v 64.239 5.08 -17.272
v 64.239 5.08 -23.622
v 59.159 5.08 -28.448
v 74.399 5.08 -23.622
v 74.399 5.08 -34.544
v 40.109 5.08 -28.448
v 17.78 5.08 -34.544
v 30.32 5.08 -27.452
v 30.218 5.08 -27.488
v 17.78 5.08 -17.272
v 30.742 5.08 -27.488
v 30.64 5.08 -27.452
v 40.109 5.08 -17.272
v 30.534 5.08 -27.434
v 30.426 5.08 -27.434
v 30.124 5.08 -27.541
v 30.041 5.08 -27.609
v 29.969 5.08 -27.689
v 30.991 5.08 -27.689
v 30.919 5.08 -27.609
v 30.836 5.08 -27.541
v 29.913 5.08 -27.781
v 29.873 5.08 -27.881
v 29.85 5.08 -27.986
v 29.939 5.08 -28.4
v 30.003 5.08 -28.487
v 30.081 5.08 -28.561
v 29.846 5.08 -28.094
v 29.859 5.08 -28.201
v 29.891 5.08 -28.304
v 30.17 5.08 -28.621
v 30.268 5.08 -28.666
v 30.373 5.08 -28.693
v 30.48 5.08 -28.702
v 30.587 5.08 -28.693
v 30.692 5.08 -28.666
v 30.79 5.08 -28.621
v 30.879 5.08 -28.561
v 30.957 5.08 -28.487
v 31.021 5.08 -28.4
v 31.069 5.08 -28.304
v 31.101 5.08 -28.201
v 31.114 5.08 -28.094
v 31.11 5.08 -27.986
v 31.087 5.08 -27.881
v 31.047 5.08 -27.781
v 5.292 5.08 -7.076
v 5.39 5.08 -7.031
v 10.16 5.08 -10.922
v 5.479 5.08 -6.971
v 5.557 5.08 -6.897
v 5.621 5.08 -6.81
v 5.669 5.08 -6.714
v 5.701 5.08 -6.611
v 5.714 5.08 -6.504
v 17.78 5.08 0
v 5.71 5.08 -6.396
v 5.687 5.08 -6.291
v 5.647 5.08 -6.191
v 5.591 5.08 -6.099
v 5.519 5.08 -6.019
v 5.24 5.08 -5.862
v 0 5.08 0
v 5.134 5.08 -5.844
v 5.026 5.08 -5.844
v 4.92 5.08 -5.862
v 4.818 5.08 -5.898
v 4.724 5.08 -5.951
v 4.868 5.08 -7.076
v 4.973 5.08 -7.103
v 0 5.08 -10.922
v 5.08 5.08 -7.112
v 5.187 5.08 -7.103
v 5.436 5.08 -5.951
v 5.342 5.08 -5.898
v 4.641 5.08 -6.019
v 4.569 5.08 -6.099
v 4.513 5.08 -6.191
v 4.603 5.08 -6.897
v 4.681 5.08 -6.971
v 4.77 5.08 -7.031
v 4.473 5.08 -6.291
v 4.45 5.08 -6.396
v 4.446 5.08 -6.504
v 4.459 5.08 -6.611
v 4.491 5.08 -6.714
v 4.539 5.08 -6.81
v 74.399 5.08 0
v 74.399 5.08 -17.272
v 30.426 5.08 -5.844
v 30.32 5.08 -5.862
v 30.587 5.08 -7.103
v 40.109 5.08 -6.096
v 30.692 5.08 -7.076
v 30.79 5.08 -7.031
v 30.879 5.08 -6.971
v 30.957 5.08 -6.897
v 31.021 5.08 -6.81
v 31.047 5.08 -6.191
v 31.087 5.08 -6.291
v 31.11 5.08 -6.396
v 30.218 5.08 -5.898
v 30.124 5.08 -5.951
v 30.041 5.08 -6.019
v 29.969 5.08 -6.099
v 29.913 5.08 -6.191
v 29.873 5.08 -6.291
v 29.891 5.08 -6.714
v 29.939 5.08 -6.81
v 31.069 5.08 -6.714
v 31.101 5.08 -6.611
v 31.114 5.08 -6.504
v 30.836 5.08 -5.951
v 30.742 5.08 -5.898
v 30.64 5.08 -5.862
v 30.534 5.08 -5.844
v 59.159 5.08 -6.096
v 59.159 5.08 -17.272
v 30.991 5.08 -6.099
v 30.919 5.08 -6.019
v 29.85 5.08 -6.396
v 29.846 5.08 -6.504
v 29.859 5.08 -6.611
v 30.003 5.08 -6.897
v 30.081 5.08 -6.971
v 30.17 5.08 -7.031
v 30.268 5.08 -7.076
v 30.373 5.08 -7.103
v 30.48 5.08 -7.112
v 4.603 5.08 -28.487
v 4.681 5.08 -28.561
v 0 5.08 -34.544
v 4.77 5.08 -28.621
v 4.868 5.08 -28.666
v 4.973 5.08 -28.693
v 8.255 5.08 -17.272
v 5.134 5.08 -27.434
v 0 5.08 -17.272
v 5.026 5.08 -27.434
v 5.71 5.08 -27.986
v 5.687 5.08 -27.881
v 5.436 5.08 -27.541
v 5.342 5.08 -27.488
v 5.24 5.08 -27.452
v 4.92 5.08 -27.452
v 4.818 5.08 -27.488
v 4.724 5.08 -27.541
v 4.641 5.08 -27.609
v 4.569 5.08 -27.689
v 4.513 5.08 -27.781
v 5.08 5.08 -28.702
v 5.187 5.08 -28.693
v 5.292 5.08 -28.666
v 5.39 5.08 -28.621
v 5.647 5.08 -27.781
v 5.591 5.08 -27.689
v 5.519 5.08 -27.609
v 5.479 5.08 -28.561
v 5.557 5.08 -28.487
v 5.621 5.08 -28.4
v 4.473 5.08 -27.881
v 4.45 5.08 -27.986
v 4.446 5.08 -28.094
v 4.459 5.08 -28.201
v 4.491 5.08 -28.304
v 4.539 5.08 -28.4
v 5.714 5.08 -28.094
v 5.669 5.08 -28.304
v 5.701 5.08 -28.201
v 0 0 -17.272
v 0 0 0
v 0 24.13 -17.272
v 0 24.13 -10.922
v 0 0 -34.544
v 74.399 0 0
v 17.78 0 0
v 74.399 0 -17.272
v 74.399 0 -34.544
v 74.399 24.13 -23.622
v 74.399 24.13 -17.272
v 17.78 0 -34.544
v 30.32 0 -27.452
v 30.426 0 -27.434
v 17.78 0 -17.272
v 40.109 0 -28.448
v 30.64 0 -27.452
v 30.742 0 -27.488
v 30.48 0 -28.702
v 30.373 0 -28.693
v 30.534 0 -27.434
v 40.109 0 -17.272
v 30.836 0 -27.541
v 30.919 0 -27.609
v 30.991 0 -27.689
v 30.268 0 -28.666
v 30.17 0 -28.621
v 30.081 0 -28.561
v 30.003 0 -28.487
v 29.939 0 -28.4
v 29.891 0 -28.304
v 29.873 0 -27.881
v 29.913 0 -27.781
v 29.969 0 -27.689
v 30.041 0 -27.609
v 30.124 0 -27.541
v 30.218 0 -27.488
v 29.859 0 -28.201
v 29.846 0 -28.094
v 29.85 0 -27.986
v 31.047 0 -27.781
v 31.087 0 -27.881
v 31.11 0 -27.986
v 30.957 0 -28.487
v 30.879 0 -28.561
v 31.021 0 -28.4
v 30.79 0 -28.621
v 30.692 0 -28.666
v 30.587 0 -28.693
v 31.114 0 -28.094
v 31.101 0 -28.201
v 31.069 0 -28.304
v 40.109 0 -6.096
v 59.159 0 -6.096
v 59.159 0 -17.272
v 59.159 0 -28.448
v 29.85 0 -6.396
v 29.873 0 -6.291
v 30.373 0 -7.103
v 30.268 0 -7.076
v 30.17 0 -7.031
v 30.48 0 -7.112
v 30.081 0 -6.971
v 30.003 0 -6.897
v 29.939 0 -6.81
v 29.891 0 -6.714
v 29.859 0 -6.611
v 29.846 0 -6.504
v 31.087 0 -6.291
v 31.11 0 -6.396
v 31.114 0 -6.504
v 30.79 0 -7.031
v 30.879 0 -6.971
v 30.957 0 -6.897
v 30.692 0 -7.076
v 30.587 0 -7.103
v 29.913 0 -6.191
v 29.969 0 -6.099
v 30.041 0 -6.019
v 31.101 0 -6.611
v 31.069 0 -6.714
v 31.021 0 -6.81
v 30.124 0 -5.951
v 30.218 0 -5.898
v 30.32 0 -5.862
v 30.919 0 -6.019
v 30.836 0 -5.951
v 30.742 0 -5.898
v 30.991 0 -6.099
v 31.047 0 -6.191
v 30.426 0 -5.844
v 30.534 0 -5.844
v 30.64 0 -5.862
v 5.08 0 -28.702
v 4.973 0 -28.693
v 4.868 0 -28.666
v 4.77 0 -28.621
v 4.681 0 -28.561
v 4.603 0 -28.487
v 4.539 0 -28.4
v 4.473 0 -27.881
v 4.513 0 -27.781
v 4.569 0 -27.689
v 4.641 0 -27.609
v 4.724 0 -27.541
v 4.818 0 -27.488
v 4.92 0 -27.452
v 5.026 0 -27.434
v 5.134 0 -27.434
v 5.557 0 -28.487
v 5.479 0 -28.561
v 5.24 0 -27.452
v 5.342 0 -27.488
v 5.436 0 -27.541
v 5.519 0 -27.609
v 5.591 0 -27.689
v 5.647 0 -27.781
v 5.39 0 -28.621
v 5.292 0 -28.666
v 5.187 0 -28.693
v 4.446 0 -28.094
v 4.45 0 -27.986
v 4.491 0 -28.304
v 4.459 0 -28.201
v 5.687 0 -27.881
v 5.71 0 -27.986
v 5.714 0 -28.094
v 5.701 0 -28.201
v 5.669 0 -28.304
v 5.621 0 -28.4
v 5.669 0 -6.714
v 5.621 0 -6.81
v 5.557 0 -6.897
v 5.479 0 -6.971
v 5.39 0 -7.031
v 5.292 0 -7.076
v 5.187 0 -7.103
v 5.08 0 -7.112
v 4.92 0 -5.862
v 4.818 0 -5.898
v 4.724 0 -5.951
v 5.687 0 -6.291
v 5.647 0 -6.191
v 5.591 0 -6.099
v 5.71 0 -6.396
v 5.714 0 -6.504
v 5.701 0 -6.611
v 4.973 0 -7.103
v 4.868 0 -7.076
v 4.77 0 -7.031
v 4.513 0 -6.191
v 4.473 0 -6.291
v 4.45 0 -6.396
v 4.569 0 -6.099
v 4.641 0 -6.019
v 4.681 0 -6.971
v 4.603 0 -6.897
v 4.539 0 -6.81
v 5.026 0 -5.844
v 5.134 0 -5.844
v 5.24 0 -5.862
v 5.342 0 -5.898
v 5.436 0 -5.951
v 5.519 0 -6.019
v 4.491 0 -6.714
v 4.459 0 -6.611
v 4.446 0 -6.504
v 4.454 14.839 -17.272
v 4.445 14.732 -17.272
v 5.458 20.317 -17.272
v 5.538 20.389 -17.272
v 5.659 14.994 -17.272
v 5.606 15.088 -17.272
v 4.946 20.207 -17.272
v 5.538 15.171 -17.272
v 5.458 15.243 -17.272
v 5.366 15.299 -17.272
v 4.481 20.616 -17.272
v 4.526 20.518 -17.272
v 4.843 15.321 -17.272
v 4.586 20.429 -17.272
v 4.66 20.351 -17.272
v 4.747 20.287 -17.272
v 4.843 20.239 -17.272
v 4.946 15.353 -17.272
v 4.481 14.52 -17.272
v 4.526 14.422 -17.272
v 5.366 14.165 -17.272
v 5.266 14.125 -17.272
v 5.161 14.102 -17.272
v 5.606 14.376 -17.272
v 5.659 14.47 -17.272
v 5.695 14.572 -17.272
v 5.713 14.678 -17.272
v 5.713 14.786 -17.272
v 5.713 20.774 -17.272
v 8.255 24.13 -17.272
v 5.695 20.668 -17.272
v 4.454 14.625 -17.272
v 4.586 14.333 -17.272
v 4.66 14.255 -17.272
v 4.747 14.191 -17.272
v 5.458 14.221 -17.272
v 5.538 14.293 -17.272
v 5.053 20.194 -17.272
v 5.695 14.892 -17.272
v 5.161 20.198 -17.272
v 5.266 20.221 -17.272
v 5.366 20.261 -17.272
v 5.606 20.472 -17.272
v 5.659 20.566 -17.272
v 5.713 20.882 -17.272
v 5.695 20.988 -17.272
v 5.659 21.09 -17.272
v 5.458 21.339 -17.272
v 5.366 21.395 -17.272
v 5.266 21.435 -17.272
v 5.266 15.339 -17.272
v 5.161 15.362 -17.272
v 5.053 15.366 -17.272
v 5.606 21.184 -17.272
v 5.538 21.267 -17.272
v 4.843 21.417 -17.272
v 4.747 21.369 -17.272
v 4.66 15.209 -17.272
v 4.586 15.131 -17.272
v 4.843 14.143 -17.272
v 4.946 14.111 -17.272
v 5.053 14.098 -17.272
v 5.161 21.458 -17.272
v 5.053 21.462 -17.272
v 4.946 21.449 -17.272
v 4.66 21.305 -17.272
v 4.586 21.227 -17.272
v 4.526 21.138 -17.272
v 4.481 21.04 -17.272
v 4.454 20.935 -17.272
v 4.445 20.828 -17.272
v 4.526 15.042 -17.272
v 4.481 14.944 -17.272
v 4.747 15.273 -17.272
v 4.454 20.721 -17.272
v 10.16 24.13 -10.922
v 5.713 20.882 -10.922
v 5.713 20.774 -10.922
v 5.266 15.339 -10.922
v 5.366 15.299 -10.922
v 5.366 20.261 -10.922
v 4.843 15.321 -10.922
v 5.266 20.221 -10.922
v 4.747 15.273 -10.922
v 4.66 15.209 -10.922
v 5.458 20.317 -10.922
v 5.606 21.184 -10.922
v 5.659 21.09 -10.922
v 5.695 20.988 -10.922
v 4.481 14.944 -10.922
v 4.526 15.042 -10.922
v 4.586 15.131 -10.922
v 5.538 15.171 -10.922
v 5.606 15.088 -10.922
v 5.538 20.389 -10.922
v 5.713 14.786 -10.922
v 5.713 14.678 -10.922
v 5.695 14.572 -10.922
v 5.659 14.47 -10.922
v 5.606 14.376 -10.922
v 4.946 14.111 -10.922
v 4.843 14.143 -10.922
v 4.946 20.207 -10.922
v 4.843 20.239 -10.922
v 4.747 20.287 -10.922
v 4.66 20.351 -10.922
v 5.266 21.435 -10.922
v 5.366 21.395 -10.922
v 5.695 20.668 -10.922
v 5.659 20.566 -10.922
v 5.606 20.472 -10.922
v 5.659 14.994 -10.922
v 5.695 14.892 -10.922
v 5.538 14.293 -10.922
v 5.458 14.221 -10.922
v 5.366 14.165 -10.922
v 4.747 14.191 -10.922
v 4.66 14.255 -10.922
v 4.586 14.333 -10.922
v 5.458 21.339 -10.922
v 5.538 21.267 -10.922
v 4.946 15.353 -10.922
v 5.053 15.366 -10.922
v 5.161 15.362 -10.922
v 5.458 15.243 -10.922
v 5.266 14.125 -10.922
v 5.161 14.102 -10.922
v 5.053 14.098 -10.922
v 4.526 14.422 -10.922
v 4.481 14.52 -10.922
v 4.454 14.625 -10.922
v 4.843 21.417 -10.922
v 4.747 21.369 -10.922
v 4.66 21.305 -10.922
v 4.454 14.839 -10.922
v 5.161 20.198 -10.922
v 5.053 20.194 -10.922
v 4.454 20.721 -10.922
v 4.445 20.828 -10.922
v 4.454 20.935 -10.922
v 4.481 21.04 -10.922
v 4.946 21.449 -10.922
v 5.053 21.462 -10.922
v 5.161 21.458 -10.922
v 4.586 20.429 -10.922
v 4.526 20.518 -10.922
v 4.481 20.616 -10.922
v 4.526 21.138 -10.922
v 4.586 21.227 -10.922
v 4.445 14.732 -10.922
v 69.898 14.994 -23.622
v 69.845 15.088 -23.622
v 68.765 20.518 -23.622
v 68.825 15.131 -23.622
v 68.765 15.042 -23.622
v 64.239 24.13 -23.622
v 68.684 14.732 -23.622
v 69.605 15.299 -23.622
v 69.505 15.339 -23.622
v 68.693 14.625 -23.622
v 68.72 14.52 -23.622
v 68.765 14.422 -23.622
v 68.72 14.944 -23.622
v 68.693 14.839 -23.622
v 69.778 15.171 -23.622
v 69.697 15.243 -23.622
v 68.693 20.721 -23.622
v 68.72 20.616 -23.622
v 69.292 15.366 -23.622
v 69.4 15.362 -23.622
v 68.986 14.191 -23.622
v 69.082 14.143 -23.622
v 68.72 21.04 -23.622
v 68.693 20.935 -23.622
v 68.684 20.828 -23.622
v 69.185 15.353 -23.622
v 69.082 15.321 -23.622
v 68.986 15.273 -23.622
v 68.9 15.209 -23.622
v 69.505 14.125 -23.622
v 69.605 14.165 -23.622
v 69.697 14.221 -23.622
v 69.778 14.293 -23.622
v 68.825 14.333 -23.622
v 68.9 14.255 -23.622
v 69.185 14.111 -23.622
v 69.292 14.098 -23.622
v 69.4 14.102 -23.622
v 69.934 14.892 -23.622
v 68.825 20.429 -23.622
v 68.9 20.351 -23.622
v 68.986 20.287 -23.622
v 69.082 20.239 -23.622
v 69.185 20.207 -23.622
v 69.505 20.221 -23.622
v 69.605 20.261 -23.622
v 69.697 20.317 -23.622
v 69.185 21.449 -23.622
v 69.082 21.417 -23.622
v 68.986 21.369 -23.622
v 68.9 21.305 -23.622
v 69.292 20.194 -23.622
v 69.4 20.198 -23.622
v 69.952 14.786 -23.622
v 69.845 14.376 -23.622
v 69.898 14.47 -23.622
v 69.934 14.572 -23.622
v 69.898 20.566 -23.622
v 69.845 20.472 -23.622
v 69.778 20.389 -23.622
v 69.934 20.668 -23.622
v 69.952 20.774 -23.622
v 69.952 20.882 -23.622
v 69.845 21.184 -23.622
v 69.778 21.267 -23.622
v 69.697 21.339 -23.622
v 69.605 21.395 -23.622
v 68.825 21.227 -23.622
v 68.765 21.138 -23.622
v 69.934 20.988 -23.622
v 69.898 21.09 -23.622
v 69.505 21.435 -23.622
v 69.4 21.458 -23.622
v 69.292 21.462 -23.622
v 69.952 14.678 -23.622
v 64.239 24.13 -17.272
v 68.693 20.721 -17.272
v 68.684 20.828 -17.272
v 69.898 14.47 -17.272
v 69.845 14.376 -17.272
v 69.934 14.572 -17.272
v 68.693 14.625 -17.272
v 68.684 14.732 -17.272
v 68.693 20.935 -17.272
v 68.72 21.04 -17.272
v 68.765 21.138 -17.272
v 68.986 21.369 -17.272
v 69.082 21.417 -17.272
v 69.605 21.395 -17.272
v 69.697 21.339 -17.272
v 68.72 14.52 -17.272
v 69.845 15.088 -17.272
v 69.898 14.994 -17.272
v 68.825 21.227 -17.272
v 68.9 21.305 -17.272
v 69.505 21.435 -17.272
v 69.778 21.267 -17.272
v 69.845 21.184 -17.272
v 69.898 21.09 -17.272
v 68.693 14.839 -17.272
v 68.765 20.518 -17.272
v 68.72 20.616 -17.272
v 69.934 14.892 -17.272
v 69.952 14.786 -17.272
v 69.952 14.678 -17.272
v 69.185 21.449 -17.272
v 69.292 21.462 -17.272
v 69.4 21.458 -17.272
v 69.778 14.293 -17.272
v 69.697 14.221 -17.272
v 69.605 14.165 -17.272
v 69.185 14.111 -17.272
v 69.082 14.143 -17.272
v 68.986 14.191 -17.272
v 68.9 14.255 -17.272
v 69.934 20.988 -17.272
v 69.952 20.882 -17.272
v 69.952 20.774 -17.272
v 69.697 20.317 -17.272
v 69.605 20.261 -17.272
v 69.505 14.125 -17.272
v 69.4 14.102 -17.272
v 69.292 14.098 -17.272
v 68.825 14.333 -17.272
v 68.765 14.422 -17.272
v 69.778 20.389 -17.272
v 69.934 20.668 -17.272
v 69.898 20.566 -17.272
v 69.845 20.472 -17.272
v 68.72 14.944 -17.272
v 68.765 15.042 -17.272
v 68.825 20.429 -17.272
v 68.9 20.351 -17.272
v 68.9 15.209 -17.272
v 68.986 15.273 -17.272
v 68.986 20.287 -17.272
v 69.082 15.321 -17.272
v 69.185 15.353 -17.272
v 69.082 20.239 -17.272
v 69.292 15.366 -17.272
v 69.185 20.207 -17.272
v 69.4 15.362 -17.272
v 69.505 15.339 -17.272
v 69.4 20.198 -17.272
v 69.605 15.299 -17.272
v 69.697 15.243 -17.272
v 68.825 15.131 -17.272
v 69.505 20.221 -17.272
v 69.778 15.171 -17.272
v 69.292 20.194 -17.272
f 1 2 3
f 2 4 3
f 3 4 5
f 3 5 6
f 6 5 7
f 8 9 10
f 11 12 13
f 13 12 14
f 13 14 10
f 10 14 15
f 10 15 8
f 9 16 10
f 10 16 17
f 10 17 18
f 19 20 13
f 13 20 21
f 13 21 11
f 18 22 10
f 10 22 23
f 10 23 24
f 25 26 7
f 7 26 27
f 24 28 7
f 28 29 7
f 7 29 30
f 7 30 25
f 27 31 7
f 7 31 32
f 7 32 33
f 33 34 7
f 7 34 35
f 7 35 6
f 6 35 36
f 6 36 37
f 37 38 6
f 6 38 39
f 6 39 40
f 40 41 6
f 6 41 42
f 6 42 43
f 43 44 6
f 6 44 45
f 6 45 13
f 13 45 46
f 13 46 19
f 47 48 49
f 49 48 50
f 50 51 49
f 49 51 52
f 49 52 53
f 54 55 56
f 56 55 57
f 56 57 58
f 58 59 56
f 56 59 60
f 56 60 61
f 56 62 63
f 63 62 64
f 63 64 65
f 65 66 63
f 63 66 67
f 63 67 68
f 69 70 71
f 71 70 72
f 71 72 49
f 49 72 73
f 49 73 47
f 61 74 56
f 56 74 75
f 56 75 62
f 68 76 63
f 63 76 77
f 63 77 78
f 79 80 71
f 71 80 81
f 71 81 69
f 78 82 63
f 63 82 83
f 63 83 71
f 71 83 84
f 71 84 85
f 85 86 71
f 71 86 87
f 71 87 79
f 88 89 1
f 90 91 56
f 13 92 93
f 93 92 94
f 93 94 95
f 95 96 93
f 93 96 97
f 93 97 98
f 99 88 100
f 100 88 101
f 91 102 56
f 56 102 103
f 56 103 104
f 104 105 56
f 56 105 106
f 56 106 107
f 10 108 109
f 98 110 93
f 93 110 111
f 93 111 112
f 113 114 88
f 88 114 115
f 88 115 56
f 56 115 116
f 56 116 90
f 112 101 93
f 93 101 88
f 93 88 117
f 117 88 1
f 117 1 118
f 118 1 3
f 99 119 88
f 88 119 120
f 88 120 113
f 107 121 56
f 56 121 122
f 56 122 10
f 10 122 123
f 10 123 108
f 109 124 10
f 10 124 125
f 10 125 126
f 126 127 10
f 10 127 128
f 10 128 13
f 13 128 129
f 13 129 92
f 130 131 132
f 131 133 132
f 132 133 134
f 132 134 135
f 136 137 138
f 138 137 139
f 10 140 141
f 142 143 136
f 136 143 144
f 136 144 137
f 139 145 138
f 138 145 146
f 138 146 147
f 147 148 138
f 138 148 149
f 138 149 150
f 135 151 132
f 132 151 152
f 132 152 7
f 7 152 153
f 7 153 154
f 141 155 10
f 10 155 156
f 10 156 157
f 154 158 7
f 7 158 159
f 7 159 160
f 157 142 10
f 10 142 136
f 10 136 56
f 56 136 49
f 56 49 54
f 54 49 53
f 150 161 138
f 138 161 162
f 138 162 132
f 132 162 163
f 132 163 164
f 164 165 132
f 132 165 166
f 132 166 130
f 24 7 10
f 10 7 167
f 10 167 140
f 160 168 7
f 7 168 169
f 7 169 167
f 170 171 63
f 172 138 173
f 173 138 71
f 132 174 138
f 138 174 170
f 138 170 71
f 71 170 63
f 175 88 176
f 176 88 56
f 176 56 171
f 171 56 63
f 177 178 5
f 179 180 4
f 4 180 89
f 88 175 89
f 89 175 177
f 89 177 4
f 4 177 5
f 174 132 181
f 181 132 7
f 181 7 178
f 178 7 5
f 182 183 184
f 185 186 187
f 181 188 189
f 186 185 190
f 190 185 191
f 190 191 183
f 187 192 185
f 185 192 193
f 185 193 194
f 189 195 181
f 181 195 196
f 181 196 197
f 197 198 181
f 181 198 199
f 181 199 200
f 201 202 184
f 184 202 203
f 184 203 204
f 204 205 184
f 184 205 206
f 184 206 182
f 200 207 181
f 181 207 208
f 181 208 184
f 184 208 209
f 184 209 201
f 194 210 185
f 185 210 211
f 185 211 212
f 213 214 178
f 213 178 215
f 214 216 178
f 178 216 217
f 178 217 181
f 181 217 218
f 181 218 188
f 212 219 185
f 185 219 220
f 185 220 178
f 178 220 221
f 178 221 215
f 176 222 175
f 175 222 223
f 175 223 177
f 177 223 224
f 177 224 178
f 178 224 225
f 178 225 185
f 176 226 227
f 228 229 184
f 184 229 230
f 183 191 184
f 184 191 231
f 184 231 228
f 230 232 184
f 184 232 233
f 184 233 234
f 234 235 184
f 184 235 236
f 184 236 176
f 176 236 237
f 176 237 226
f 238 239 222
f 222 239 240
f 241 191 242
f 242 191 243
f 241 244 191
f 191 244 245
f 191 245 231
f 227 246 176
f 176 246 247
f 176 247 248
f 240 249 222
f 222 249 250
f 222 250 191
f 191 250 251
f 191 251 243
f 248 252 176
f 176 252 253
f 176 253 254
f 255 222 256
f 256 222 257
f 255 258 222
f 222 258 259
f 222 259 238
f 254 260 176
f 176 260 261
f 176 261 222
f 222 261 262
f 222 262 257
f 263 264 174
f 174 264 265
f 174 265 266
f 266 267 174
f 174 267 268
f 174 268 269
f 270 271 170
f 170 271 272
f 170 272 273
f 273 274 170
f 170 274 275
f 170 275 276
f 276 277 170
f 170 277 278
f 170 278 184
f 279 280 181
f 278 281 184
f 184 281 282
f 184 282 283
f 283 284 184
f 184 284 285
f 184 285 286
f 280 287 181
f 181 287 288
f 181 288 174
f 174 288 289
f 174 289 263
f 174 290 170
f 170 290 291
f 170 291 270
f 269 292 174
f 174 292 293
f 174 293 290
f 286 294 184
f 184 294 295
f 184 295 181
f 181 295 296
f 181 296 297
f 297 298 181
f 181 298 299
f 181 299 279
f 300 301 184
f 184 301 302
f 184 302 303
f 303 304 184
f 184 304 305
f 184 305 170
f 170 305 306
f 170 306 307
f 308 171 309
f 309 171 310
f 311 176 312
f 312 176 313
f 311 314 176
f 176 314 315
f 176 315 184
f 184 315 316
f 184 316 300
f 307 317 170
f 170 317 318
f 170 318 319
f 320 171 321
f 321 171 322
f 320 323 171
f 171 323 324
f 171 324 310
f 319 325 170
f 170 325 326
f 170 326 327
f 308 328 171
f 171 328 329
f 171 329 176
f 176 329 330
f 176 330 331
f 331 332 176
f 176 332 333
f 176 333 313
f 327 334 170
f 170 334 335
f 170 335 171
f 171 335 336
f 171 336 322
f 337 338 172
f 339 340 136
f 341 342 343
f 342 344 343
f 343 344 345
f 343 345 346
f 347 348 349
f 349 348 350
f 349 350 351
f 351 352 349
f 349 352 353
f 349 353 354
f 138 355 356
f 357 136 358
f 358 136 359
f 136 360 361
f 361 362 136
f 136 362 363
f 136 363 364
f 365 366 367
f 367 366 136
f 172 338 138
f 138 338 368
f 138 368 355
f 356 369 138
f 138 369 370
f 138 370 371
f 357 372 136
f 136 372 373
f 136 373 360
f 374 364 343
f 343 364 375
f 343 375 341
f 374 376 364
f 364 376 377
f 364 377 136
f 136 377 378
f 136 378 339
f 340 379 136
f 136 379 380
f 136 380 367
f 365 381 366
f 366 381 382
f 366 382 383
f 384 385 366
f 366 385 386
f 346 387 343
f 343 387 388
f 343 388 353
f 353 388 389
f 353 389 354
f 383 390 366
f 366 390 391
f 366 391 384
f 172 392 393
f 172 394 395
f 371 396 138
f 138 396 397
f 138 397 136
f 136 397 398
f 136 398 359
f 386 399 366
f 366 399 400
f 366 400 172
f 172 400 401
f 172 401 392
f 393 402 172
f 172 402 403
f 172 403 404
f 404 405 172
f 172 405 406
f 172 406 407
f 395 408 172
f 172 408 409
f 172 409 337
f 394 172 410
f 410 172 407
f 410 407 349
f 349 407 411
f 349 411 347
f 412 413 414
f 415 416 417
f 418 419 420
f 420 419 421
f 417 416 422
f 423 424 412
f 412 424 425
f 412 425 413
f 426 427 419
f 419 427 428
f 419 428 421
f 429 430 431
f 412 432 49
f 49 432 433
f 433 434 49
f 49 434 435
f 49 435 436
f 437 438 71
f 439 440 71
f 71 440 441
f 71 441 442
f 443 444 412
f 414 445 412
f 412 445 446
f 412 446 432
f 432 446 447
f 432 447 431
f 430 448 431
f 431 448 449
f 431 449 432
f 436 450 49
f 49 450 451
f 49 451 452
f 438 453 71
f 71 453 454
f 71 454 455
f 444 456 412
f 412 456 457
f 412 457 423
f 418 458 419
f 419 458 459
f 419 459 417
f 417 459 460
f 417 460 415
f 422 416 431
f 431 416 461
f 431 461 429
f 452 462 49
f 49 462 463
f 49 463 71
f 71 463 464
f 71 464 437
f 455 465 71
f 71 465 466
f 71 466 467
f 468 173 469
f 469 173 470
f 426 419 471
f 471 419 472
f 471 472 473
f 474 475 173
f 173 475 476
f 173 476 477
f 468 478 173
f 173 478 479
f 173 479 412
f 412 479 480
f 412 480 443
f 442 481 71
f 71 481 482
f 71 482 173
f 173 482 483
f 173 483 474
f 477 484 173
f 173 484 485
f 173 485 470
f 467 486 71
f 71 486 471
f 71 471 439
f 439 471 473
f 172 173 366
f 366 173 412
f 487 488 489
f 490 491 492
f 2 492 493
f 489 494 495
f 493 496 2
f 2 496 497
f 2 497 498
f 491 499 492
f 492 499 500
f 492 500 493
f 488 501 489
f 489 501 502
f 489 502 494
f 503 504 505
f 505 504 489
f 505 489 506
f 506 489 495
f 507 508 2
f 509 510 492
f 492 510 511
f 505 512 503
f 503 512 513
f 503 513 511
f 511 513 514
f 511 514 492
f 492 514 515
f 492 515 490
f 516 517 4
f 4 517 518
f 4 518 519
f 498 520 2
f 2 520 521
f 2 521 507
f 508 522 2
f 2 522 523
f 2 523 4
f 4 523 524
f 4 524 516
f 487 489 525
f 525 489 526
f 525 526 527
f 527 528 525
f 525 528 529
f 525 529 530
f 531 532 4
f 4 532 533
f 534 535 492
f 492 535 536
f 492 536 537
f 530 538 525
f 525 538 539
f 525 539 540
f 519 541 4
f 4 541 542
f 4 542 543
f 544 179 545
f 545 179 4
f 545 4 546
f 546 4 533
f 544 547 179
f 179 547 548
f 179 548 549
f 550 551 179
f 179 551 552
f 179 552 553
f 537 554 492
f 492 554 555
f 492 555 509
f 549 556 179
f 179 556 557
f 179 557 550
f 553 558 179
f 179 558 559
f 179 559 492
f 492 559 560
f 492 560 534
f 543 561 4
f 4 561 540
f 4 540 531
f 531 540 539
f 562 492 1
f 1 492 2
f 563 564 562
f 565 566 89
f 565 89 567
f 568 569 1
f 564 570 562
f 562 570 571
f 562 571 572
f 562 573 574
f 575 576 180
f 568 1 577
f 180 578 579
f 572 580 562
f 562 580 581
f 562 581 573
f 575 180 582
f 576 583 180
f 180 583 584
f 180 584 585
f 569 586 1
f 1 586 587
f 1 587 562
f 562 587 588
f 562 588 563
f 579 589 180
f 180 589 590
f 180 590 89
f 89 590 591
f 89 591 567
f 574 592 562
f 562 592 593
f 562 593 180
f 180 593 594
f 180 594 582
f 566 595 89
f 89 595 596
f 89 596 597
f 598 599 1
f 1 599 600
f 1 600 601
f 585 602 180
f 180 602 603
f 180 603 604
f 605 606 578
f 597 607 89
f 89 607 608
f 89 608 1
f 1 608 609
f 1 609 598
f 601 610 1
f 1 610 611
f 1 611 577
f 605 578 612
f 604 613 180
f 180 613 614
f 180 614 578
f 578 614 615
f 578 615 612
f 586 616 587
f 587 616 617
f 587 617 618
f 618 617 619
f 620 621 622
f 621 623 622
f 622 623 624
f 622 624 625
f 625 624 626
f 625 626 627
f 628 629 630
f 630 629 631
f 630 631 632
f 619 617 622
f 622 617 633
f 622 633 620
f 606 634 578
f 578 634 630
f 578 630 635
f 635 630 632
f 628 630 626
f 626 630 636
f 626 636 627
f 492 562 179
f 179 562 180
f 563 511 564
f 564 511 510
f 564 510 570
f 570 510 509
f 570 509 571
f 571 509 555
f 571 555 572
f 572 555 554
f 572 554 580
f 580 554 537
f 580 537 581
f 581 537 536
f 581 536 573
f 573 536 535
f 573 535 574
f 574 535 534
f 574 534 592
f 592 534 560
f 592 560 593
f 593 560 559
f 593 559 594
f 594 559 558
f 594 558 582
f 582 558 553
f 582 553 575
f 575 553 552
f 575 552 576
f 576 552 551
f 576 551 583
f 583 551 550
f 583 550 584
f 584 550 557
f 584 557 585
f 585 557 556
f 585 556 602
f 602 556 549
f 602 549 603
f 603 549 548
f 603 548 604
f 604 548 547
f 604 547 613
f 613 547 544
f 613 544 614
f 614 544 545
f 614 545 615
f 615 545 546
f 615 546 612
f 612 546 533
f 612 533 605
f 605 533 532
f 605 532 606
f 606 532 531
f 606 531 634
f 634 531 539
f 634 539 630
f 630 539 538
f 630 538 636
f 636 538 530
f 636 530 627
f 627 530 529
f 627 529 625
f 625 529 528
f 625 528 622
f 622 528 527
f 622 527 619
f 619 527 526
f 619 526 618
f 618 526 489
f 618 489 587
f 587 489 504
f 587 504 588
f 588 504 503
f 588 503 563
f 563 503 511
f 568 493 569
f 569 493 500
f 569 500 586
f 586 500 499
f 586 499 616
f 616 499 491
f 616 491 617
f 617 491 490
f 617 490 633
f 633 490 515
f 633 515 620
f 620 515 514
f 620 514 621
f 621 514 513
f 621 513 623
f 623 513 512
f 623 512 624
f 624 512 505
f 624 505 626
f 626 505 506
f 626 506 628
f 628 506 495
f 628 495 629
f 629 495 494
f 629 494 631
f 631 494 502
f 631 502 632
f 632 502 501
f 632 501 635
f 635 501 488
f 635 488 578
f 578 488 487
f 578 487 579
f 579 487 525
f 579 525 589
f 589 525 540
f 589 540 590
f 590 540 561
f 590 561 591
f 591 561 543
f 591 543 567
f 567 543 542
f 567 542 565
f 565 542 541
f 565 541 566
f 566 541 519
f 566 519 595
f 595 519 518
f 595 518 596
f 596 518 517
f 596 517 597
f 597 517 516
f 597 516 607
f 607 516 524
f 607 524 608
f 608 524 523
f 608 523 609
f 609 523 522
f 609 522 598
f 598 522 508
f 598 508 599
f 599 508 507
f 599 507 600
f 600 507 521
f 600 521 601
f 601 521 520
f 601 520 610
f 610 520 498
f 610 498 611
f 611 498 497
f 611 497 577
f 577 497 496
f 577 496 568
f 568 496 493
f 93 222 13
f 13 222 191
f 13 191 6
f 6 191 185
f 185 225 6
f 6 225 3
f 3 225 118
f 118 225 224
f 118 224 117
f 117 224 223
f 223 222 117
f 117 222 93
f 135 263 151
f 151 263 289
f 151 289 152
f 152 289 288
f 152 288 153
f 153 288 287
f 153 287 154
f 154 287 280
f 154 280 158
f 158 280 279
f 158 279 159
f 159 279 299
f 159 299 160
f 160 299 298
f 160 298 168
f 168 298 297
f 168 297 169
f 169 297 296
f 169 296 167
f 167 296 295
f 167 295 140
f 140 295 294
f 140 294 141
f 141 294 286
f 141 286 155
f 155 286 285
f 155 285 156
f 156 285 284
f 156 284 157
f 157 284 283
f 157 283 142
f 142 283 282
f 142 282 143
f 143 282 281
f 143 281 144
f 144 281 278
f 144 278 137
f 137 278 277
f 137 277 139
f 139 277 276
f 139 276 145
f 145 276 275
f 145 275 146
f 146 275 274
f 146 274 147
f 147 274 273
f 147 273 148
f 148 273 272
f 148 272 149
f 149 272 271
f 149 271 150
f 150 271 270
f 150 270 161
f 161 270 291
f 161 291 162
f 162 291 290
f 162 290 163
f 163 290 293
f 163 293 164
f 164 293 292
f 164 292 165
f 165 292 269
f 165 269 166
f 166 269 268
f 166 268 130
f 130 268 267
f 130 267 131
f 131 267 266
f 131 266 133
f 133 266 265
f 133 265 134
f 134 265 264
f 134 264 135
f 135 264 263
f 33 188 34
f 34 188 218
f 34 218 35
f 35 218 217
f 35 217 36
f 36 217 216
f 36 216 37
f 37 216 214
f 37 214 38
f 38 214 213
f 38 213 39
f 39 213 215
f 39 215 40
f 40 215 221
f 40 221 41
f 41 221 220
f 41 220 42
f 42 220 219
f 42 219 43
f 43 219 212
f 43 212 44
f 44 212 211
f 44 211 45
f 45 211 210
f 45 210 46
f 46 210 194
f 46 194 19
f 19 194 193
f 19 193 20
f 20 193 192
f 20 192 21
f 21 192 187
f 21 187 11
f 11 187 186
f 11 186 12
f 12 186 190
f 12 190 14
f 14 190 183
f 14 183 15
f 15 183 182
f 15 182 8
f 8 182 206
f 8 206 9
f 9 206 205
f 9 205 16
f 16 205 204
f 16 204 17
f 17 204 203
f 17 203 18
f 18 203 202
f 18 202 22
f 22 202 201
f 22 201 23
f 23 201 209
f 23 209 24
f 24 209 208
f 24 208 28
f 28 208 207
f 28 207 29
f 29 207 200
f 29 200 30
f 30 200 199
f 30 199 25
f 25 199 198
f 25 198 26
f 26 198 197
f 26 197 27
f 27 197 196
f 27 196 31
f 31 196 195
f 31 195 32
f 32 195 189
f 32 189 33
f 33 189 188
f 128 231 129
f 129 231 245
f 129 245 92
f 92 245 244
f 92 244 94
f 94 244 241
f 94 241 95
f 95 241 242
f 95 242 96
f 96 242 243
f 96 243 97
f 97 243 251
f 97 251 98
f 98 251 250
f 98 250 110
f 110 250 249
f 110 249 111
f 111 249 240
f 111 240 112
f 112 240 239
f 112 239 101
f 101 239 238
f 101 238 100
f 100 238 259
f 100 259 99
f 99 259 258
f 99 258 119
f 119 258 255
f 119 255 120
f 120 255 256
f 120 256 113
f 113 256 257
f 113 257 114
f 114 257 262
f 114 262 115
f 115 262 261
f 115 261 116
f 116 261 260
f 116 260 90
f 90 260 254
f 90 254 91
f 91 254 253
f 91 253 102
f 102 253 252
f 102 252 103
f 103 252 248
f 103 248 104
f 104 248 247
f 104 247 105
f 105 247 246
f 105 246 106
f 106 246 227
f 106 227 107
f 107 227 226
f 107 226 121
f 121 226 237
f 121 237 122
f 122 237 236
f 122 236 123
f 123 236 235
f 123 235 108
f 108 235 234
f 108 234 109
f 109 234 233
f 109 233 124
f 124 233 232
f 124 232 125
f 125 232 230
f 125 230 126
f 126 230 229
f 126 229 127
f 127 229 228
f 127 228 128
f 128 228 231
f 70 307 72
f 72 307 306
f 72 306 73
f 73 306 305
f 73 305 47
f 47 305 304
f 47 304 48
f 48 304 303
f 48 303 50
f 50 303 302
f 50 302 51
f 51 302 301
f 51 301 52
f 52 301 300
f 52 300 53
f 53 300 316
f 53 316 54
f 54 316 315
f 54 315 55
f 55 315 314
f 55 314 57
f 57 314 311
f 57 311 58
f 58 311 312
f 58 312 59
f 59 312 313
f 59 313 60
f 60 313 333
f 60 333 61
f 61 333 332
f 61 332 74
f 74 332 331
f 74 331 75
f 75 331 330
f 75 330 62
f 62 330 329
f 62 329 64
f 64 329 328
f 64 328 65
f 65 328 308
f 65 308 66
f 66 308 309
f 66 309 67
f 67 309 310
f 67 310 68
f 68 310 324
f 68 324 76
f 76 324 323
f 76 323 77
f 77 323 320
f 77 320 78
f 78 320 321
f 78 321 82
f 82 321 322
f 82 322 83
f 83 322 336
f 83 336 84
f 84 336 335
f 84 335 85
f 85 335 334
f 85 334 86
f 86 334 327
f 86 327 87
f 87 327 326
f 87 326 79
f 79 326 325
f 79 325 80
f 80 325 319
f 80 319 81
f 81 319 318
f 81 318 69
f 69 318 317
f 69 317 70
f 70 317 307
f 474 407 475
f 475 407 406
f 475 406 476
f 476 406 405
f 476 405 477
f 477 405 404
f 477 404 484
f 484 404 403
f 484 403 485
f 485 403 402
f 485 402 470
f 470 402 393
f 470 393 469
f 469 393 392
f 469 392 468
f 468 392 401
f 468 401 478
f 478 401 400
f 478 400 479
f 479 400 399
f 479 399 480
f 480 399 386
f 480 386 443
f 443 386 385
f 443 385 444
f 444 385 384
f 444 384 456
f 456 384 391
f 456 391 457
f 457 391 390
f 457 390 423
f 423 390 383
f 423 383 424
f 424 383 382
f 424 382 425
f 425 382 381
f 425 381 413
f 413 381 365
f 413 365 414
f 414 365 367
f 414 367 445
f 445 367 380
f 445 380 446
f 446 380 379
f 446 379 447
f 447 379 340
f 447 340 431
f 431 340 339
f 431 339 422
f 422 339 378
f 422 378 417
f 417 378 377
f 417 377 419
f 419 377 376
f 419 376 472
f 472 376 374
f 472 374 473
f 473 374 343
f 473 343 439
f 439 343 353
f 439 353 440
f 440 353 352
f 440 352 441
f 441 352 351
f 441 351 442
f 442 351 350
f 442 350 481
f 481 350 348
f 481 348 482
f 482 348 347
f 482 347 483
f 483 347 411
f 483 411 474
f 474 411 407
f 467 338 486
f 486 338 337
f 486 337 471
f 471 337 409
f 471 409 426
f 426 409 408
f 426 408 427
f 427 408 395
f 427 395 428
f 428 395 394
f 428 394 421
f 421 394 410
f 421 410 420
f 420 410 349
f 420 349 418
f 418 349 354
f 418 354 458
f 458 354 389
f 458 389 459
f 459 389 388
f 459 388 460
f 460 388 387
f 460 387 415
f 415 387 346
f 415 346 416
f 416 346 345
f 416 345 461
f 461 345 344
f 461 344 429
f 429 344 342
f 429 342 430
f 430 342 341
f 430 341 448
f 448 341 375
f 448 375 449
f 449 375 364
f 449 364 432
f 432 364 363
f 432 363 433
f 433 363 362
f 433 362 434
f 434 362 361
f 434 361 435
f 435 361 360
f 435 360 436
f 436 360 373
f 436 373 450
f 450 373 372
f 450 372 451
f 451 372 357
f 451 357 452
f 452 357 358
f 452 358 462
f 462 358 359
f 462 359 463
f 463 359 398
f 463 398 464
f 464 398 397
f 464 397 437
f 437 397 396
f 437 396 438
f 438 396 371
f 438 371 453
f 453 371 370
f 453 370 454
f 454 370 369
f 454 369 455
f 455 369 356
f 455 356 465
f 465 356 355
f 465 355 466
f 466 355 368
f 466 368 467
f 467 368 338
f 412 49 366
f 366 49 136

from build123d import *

# Parameters (mm, degrees)
SKETCH1_W           = 74.39914
SKETCH1_H           = 34.544
BOSS_EXTRUDE1_DEPTH = 5.08
SKETCH2_W           = 10.16
SKETCH2_H           = 6.35
BOSS_EXTRUDE2_DEPTH = 19.05
SKETCH3_R           = 0.635
CUT_EXTRUDE1_DEPTH  = 82.703658527
SKETCH4_W           = 19.05
SKETCH4_H           = 22.352
CUT_EXTRUDE2_DEPTH  = 85.210584066
SKETCH5_R           = 0.635
CUT_EXTRUDE3_DEPTH  = 86.503081048
SKETCH6_R           = 0.635
CUT_EXTRUDE4_DEPTH  = 81.098757273
CUT_EXTRUDE5_DEPTH  = 19.05


with BuildPart() as part:
    # Sketch1 → Boss-Extrude1 (new body)
    with BuildSketch(Plane(origin=(0, 0, 0), x_dir=(1, 0, 0), z_dir=(0, 1, 0))):
        with Locations((37.19957, 17.272)):
            Rectangle(SKETCH1_W, SKETCH1_H)
    extrude(amount=BOSS_EXTRUDE1_DEPTH)

    # Sketch2 → Boss-Extrude2 (add)
    with BuildSketch(Plane(origin=(0, 5.08, 0), x_dir=(1, 0, 0), z_dir=(0, 1, 0))):
        with Locations((69.31914, 20.447)):
            Rectangle(SKETCH2_W, SKETCH2_H)
        with Locations((5.08, 14.097)):
            Rectangle(SKETCH2_W, SKETCH2_H)
    extrude(amount=BOSS_EXTRUDE2_DEPTH)

    # Sketch3 → Cut-Extrude1 (cut, through all)
    with BuildSketch(Plane(origin=(0, 0, -23.622), x_dir=(-1, 0, 0), z_dir=(0, 0, -1))):
        with Locations((-69.31914, 20.828)):
            Circle(SKETCH3_R)
        with Locations((-69.31914, 14.732)):
            Circle(SKETCH3_R)
    extrude(amount=-CUT_EXTRUDE1_DEPTH, mode=Mode.SUBTRACT)

    # Sketch4 → Cut-Extrude2 (cut, through all)
    with BuildSketch(Plane(origin=(0, 5.08, 0), x_dir=(1, 0, 0), z_dir=(0, 1, 0))):
        with Locations((49.63414, 17.272)):
            Rectangle(SKETCH4_W, SKETCH4_H)
    extrude(amount=-CUT_EXTRUDE2_DEPTH, mode=Mode.SUBTRACT)

    # Sketch5 → Cut-Extrude3 (cut, through all)
    with BuildSketch(Plane(origin=(0, 0, 0), x_dir=(-1, 0, 0), z_dir=(0, -1, 0))):
        with Locations(Location((-5.08, 28.067, 0), (0, 0, 90))):
            Circle(SKETCH5_R)
        with Locations(Location((-30.48, 28.067, 0), (0, 0, 90))):
            Circle(SKETCH5_R)
        with Locations(Location((-30.48, 6.477, 0), (0, 0, 90))):
            Circle(SKETCH5_R)
        with Locations(Location((-5.08, 6.477, 0), (0, 0, 90))):
            Circle(SKETCH5_R)
    extrude(amount=-CUT_EXTRUDE3_DEPTH, mode=Mode.SUBTRACT)

    # Sketch6 → Cut-Extrude4 (cut, through all)
    with BuildSketch(Plane(origin=(0, 0, -17.272), x_dir=(-1, 0, 0), z_dir=(0, 0, -1))):
        with Locations((-5.08, 20.828)):
            Circle(SKETCH6_R)
        with Locations((-5.08, 14.732)):
            Circle(SKETCH6_R)
    extrude(amount=-CUT_EXTRUDE4_DEPTH, mode=Mode.SUBTRACT)

    # Sketch8 → Cut-Extrude5 (cut)
    with BuildSketch(Plane(origin=(0, 24.13, 0), x_dir=(1, 0, 0), z_dir=(0, 1, 0))):
        Polygon((10.16, 10.922), (8.255, 17.272), (10.16, 17.272), align=None)
    extrude(amount=-CUT_EXTRUDE5_DEPTH, mode=Mode.SUBTRACT)


solid = part.part
